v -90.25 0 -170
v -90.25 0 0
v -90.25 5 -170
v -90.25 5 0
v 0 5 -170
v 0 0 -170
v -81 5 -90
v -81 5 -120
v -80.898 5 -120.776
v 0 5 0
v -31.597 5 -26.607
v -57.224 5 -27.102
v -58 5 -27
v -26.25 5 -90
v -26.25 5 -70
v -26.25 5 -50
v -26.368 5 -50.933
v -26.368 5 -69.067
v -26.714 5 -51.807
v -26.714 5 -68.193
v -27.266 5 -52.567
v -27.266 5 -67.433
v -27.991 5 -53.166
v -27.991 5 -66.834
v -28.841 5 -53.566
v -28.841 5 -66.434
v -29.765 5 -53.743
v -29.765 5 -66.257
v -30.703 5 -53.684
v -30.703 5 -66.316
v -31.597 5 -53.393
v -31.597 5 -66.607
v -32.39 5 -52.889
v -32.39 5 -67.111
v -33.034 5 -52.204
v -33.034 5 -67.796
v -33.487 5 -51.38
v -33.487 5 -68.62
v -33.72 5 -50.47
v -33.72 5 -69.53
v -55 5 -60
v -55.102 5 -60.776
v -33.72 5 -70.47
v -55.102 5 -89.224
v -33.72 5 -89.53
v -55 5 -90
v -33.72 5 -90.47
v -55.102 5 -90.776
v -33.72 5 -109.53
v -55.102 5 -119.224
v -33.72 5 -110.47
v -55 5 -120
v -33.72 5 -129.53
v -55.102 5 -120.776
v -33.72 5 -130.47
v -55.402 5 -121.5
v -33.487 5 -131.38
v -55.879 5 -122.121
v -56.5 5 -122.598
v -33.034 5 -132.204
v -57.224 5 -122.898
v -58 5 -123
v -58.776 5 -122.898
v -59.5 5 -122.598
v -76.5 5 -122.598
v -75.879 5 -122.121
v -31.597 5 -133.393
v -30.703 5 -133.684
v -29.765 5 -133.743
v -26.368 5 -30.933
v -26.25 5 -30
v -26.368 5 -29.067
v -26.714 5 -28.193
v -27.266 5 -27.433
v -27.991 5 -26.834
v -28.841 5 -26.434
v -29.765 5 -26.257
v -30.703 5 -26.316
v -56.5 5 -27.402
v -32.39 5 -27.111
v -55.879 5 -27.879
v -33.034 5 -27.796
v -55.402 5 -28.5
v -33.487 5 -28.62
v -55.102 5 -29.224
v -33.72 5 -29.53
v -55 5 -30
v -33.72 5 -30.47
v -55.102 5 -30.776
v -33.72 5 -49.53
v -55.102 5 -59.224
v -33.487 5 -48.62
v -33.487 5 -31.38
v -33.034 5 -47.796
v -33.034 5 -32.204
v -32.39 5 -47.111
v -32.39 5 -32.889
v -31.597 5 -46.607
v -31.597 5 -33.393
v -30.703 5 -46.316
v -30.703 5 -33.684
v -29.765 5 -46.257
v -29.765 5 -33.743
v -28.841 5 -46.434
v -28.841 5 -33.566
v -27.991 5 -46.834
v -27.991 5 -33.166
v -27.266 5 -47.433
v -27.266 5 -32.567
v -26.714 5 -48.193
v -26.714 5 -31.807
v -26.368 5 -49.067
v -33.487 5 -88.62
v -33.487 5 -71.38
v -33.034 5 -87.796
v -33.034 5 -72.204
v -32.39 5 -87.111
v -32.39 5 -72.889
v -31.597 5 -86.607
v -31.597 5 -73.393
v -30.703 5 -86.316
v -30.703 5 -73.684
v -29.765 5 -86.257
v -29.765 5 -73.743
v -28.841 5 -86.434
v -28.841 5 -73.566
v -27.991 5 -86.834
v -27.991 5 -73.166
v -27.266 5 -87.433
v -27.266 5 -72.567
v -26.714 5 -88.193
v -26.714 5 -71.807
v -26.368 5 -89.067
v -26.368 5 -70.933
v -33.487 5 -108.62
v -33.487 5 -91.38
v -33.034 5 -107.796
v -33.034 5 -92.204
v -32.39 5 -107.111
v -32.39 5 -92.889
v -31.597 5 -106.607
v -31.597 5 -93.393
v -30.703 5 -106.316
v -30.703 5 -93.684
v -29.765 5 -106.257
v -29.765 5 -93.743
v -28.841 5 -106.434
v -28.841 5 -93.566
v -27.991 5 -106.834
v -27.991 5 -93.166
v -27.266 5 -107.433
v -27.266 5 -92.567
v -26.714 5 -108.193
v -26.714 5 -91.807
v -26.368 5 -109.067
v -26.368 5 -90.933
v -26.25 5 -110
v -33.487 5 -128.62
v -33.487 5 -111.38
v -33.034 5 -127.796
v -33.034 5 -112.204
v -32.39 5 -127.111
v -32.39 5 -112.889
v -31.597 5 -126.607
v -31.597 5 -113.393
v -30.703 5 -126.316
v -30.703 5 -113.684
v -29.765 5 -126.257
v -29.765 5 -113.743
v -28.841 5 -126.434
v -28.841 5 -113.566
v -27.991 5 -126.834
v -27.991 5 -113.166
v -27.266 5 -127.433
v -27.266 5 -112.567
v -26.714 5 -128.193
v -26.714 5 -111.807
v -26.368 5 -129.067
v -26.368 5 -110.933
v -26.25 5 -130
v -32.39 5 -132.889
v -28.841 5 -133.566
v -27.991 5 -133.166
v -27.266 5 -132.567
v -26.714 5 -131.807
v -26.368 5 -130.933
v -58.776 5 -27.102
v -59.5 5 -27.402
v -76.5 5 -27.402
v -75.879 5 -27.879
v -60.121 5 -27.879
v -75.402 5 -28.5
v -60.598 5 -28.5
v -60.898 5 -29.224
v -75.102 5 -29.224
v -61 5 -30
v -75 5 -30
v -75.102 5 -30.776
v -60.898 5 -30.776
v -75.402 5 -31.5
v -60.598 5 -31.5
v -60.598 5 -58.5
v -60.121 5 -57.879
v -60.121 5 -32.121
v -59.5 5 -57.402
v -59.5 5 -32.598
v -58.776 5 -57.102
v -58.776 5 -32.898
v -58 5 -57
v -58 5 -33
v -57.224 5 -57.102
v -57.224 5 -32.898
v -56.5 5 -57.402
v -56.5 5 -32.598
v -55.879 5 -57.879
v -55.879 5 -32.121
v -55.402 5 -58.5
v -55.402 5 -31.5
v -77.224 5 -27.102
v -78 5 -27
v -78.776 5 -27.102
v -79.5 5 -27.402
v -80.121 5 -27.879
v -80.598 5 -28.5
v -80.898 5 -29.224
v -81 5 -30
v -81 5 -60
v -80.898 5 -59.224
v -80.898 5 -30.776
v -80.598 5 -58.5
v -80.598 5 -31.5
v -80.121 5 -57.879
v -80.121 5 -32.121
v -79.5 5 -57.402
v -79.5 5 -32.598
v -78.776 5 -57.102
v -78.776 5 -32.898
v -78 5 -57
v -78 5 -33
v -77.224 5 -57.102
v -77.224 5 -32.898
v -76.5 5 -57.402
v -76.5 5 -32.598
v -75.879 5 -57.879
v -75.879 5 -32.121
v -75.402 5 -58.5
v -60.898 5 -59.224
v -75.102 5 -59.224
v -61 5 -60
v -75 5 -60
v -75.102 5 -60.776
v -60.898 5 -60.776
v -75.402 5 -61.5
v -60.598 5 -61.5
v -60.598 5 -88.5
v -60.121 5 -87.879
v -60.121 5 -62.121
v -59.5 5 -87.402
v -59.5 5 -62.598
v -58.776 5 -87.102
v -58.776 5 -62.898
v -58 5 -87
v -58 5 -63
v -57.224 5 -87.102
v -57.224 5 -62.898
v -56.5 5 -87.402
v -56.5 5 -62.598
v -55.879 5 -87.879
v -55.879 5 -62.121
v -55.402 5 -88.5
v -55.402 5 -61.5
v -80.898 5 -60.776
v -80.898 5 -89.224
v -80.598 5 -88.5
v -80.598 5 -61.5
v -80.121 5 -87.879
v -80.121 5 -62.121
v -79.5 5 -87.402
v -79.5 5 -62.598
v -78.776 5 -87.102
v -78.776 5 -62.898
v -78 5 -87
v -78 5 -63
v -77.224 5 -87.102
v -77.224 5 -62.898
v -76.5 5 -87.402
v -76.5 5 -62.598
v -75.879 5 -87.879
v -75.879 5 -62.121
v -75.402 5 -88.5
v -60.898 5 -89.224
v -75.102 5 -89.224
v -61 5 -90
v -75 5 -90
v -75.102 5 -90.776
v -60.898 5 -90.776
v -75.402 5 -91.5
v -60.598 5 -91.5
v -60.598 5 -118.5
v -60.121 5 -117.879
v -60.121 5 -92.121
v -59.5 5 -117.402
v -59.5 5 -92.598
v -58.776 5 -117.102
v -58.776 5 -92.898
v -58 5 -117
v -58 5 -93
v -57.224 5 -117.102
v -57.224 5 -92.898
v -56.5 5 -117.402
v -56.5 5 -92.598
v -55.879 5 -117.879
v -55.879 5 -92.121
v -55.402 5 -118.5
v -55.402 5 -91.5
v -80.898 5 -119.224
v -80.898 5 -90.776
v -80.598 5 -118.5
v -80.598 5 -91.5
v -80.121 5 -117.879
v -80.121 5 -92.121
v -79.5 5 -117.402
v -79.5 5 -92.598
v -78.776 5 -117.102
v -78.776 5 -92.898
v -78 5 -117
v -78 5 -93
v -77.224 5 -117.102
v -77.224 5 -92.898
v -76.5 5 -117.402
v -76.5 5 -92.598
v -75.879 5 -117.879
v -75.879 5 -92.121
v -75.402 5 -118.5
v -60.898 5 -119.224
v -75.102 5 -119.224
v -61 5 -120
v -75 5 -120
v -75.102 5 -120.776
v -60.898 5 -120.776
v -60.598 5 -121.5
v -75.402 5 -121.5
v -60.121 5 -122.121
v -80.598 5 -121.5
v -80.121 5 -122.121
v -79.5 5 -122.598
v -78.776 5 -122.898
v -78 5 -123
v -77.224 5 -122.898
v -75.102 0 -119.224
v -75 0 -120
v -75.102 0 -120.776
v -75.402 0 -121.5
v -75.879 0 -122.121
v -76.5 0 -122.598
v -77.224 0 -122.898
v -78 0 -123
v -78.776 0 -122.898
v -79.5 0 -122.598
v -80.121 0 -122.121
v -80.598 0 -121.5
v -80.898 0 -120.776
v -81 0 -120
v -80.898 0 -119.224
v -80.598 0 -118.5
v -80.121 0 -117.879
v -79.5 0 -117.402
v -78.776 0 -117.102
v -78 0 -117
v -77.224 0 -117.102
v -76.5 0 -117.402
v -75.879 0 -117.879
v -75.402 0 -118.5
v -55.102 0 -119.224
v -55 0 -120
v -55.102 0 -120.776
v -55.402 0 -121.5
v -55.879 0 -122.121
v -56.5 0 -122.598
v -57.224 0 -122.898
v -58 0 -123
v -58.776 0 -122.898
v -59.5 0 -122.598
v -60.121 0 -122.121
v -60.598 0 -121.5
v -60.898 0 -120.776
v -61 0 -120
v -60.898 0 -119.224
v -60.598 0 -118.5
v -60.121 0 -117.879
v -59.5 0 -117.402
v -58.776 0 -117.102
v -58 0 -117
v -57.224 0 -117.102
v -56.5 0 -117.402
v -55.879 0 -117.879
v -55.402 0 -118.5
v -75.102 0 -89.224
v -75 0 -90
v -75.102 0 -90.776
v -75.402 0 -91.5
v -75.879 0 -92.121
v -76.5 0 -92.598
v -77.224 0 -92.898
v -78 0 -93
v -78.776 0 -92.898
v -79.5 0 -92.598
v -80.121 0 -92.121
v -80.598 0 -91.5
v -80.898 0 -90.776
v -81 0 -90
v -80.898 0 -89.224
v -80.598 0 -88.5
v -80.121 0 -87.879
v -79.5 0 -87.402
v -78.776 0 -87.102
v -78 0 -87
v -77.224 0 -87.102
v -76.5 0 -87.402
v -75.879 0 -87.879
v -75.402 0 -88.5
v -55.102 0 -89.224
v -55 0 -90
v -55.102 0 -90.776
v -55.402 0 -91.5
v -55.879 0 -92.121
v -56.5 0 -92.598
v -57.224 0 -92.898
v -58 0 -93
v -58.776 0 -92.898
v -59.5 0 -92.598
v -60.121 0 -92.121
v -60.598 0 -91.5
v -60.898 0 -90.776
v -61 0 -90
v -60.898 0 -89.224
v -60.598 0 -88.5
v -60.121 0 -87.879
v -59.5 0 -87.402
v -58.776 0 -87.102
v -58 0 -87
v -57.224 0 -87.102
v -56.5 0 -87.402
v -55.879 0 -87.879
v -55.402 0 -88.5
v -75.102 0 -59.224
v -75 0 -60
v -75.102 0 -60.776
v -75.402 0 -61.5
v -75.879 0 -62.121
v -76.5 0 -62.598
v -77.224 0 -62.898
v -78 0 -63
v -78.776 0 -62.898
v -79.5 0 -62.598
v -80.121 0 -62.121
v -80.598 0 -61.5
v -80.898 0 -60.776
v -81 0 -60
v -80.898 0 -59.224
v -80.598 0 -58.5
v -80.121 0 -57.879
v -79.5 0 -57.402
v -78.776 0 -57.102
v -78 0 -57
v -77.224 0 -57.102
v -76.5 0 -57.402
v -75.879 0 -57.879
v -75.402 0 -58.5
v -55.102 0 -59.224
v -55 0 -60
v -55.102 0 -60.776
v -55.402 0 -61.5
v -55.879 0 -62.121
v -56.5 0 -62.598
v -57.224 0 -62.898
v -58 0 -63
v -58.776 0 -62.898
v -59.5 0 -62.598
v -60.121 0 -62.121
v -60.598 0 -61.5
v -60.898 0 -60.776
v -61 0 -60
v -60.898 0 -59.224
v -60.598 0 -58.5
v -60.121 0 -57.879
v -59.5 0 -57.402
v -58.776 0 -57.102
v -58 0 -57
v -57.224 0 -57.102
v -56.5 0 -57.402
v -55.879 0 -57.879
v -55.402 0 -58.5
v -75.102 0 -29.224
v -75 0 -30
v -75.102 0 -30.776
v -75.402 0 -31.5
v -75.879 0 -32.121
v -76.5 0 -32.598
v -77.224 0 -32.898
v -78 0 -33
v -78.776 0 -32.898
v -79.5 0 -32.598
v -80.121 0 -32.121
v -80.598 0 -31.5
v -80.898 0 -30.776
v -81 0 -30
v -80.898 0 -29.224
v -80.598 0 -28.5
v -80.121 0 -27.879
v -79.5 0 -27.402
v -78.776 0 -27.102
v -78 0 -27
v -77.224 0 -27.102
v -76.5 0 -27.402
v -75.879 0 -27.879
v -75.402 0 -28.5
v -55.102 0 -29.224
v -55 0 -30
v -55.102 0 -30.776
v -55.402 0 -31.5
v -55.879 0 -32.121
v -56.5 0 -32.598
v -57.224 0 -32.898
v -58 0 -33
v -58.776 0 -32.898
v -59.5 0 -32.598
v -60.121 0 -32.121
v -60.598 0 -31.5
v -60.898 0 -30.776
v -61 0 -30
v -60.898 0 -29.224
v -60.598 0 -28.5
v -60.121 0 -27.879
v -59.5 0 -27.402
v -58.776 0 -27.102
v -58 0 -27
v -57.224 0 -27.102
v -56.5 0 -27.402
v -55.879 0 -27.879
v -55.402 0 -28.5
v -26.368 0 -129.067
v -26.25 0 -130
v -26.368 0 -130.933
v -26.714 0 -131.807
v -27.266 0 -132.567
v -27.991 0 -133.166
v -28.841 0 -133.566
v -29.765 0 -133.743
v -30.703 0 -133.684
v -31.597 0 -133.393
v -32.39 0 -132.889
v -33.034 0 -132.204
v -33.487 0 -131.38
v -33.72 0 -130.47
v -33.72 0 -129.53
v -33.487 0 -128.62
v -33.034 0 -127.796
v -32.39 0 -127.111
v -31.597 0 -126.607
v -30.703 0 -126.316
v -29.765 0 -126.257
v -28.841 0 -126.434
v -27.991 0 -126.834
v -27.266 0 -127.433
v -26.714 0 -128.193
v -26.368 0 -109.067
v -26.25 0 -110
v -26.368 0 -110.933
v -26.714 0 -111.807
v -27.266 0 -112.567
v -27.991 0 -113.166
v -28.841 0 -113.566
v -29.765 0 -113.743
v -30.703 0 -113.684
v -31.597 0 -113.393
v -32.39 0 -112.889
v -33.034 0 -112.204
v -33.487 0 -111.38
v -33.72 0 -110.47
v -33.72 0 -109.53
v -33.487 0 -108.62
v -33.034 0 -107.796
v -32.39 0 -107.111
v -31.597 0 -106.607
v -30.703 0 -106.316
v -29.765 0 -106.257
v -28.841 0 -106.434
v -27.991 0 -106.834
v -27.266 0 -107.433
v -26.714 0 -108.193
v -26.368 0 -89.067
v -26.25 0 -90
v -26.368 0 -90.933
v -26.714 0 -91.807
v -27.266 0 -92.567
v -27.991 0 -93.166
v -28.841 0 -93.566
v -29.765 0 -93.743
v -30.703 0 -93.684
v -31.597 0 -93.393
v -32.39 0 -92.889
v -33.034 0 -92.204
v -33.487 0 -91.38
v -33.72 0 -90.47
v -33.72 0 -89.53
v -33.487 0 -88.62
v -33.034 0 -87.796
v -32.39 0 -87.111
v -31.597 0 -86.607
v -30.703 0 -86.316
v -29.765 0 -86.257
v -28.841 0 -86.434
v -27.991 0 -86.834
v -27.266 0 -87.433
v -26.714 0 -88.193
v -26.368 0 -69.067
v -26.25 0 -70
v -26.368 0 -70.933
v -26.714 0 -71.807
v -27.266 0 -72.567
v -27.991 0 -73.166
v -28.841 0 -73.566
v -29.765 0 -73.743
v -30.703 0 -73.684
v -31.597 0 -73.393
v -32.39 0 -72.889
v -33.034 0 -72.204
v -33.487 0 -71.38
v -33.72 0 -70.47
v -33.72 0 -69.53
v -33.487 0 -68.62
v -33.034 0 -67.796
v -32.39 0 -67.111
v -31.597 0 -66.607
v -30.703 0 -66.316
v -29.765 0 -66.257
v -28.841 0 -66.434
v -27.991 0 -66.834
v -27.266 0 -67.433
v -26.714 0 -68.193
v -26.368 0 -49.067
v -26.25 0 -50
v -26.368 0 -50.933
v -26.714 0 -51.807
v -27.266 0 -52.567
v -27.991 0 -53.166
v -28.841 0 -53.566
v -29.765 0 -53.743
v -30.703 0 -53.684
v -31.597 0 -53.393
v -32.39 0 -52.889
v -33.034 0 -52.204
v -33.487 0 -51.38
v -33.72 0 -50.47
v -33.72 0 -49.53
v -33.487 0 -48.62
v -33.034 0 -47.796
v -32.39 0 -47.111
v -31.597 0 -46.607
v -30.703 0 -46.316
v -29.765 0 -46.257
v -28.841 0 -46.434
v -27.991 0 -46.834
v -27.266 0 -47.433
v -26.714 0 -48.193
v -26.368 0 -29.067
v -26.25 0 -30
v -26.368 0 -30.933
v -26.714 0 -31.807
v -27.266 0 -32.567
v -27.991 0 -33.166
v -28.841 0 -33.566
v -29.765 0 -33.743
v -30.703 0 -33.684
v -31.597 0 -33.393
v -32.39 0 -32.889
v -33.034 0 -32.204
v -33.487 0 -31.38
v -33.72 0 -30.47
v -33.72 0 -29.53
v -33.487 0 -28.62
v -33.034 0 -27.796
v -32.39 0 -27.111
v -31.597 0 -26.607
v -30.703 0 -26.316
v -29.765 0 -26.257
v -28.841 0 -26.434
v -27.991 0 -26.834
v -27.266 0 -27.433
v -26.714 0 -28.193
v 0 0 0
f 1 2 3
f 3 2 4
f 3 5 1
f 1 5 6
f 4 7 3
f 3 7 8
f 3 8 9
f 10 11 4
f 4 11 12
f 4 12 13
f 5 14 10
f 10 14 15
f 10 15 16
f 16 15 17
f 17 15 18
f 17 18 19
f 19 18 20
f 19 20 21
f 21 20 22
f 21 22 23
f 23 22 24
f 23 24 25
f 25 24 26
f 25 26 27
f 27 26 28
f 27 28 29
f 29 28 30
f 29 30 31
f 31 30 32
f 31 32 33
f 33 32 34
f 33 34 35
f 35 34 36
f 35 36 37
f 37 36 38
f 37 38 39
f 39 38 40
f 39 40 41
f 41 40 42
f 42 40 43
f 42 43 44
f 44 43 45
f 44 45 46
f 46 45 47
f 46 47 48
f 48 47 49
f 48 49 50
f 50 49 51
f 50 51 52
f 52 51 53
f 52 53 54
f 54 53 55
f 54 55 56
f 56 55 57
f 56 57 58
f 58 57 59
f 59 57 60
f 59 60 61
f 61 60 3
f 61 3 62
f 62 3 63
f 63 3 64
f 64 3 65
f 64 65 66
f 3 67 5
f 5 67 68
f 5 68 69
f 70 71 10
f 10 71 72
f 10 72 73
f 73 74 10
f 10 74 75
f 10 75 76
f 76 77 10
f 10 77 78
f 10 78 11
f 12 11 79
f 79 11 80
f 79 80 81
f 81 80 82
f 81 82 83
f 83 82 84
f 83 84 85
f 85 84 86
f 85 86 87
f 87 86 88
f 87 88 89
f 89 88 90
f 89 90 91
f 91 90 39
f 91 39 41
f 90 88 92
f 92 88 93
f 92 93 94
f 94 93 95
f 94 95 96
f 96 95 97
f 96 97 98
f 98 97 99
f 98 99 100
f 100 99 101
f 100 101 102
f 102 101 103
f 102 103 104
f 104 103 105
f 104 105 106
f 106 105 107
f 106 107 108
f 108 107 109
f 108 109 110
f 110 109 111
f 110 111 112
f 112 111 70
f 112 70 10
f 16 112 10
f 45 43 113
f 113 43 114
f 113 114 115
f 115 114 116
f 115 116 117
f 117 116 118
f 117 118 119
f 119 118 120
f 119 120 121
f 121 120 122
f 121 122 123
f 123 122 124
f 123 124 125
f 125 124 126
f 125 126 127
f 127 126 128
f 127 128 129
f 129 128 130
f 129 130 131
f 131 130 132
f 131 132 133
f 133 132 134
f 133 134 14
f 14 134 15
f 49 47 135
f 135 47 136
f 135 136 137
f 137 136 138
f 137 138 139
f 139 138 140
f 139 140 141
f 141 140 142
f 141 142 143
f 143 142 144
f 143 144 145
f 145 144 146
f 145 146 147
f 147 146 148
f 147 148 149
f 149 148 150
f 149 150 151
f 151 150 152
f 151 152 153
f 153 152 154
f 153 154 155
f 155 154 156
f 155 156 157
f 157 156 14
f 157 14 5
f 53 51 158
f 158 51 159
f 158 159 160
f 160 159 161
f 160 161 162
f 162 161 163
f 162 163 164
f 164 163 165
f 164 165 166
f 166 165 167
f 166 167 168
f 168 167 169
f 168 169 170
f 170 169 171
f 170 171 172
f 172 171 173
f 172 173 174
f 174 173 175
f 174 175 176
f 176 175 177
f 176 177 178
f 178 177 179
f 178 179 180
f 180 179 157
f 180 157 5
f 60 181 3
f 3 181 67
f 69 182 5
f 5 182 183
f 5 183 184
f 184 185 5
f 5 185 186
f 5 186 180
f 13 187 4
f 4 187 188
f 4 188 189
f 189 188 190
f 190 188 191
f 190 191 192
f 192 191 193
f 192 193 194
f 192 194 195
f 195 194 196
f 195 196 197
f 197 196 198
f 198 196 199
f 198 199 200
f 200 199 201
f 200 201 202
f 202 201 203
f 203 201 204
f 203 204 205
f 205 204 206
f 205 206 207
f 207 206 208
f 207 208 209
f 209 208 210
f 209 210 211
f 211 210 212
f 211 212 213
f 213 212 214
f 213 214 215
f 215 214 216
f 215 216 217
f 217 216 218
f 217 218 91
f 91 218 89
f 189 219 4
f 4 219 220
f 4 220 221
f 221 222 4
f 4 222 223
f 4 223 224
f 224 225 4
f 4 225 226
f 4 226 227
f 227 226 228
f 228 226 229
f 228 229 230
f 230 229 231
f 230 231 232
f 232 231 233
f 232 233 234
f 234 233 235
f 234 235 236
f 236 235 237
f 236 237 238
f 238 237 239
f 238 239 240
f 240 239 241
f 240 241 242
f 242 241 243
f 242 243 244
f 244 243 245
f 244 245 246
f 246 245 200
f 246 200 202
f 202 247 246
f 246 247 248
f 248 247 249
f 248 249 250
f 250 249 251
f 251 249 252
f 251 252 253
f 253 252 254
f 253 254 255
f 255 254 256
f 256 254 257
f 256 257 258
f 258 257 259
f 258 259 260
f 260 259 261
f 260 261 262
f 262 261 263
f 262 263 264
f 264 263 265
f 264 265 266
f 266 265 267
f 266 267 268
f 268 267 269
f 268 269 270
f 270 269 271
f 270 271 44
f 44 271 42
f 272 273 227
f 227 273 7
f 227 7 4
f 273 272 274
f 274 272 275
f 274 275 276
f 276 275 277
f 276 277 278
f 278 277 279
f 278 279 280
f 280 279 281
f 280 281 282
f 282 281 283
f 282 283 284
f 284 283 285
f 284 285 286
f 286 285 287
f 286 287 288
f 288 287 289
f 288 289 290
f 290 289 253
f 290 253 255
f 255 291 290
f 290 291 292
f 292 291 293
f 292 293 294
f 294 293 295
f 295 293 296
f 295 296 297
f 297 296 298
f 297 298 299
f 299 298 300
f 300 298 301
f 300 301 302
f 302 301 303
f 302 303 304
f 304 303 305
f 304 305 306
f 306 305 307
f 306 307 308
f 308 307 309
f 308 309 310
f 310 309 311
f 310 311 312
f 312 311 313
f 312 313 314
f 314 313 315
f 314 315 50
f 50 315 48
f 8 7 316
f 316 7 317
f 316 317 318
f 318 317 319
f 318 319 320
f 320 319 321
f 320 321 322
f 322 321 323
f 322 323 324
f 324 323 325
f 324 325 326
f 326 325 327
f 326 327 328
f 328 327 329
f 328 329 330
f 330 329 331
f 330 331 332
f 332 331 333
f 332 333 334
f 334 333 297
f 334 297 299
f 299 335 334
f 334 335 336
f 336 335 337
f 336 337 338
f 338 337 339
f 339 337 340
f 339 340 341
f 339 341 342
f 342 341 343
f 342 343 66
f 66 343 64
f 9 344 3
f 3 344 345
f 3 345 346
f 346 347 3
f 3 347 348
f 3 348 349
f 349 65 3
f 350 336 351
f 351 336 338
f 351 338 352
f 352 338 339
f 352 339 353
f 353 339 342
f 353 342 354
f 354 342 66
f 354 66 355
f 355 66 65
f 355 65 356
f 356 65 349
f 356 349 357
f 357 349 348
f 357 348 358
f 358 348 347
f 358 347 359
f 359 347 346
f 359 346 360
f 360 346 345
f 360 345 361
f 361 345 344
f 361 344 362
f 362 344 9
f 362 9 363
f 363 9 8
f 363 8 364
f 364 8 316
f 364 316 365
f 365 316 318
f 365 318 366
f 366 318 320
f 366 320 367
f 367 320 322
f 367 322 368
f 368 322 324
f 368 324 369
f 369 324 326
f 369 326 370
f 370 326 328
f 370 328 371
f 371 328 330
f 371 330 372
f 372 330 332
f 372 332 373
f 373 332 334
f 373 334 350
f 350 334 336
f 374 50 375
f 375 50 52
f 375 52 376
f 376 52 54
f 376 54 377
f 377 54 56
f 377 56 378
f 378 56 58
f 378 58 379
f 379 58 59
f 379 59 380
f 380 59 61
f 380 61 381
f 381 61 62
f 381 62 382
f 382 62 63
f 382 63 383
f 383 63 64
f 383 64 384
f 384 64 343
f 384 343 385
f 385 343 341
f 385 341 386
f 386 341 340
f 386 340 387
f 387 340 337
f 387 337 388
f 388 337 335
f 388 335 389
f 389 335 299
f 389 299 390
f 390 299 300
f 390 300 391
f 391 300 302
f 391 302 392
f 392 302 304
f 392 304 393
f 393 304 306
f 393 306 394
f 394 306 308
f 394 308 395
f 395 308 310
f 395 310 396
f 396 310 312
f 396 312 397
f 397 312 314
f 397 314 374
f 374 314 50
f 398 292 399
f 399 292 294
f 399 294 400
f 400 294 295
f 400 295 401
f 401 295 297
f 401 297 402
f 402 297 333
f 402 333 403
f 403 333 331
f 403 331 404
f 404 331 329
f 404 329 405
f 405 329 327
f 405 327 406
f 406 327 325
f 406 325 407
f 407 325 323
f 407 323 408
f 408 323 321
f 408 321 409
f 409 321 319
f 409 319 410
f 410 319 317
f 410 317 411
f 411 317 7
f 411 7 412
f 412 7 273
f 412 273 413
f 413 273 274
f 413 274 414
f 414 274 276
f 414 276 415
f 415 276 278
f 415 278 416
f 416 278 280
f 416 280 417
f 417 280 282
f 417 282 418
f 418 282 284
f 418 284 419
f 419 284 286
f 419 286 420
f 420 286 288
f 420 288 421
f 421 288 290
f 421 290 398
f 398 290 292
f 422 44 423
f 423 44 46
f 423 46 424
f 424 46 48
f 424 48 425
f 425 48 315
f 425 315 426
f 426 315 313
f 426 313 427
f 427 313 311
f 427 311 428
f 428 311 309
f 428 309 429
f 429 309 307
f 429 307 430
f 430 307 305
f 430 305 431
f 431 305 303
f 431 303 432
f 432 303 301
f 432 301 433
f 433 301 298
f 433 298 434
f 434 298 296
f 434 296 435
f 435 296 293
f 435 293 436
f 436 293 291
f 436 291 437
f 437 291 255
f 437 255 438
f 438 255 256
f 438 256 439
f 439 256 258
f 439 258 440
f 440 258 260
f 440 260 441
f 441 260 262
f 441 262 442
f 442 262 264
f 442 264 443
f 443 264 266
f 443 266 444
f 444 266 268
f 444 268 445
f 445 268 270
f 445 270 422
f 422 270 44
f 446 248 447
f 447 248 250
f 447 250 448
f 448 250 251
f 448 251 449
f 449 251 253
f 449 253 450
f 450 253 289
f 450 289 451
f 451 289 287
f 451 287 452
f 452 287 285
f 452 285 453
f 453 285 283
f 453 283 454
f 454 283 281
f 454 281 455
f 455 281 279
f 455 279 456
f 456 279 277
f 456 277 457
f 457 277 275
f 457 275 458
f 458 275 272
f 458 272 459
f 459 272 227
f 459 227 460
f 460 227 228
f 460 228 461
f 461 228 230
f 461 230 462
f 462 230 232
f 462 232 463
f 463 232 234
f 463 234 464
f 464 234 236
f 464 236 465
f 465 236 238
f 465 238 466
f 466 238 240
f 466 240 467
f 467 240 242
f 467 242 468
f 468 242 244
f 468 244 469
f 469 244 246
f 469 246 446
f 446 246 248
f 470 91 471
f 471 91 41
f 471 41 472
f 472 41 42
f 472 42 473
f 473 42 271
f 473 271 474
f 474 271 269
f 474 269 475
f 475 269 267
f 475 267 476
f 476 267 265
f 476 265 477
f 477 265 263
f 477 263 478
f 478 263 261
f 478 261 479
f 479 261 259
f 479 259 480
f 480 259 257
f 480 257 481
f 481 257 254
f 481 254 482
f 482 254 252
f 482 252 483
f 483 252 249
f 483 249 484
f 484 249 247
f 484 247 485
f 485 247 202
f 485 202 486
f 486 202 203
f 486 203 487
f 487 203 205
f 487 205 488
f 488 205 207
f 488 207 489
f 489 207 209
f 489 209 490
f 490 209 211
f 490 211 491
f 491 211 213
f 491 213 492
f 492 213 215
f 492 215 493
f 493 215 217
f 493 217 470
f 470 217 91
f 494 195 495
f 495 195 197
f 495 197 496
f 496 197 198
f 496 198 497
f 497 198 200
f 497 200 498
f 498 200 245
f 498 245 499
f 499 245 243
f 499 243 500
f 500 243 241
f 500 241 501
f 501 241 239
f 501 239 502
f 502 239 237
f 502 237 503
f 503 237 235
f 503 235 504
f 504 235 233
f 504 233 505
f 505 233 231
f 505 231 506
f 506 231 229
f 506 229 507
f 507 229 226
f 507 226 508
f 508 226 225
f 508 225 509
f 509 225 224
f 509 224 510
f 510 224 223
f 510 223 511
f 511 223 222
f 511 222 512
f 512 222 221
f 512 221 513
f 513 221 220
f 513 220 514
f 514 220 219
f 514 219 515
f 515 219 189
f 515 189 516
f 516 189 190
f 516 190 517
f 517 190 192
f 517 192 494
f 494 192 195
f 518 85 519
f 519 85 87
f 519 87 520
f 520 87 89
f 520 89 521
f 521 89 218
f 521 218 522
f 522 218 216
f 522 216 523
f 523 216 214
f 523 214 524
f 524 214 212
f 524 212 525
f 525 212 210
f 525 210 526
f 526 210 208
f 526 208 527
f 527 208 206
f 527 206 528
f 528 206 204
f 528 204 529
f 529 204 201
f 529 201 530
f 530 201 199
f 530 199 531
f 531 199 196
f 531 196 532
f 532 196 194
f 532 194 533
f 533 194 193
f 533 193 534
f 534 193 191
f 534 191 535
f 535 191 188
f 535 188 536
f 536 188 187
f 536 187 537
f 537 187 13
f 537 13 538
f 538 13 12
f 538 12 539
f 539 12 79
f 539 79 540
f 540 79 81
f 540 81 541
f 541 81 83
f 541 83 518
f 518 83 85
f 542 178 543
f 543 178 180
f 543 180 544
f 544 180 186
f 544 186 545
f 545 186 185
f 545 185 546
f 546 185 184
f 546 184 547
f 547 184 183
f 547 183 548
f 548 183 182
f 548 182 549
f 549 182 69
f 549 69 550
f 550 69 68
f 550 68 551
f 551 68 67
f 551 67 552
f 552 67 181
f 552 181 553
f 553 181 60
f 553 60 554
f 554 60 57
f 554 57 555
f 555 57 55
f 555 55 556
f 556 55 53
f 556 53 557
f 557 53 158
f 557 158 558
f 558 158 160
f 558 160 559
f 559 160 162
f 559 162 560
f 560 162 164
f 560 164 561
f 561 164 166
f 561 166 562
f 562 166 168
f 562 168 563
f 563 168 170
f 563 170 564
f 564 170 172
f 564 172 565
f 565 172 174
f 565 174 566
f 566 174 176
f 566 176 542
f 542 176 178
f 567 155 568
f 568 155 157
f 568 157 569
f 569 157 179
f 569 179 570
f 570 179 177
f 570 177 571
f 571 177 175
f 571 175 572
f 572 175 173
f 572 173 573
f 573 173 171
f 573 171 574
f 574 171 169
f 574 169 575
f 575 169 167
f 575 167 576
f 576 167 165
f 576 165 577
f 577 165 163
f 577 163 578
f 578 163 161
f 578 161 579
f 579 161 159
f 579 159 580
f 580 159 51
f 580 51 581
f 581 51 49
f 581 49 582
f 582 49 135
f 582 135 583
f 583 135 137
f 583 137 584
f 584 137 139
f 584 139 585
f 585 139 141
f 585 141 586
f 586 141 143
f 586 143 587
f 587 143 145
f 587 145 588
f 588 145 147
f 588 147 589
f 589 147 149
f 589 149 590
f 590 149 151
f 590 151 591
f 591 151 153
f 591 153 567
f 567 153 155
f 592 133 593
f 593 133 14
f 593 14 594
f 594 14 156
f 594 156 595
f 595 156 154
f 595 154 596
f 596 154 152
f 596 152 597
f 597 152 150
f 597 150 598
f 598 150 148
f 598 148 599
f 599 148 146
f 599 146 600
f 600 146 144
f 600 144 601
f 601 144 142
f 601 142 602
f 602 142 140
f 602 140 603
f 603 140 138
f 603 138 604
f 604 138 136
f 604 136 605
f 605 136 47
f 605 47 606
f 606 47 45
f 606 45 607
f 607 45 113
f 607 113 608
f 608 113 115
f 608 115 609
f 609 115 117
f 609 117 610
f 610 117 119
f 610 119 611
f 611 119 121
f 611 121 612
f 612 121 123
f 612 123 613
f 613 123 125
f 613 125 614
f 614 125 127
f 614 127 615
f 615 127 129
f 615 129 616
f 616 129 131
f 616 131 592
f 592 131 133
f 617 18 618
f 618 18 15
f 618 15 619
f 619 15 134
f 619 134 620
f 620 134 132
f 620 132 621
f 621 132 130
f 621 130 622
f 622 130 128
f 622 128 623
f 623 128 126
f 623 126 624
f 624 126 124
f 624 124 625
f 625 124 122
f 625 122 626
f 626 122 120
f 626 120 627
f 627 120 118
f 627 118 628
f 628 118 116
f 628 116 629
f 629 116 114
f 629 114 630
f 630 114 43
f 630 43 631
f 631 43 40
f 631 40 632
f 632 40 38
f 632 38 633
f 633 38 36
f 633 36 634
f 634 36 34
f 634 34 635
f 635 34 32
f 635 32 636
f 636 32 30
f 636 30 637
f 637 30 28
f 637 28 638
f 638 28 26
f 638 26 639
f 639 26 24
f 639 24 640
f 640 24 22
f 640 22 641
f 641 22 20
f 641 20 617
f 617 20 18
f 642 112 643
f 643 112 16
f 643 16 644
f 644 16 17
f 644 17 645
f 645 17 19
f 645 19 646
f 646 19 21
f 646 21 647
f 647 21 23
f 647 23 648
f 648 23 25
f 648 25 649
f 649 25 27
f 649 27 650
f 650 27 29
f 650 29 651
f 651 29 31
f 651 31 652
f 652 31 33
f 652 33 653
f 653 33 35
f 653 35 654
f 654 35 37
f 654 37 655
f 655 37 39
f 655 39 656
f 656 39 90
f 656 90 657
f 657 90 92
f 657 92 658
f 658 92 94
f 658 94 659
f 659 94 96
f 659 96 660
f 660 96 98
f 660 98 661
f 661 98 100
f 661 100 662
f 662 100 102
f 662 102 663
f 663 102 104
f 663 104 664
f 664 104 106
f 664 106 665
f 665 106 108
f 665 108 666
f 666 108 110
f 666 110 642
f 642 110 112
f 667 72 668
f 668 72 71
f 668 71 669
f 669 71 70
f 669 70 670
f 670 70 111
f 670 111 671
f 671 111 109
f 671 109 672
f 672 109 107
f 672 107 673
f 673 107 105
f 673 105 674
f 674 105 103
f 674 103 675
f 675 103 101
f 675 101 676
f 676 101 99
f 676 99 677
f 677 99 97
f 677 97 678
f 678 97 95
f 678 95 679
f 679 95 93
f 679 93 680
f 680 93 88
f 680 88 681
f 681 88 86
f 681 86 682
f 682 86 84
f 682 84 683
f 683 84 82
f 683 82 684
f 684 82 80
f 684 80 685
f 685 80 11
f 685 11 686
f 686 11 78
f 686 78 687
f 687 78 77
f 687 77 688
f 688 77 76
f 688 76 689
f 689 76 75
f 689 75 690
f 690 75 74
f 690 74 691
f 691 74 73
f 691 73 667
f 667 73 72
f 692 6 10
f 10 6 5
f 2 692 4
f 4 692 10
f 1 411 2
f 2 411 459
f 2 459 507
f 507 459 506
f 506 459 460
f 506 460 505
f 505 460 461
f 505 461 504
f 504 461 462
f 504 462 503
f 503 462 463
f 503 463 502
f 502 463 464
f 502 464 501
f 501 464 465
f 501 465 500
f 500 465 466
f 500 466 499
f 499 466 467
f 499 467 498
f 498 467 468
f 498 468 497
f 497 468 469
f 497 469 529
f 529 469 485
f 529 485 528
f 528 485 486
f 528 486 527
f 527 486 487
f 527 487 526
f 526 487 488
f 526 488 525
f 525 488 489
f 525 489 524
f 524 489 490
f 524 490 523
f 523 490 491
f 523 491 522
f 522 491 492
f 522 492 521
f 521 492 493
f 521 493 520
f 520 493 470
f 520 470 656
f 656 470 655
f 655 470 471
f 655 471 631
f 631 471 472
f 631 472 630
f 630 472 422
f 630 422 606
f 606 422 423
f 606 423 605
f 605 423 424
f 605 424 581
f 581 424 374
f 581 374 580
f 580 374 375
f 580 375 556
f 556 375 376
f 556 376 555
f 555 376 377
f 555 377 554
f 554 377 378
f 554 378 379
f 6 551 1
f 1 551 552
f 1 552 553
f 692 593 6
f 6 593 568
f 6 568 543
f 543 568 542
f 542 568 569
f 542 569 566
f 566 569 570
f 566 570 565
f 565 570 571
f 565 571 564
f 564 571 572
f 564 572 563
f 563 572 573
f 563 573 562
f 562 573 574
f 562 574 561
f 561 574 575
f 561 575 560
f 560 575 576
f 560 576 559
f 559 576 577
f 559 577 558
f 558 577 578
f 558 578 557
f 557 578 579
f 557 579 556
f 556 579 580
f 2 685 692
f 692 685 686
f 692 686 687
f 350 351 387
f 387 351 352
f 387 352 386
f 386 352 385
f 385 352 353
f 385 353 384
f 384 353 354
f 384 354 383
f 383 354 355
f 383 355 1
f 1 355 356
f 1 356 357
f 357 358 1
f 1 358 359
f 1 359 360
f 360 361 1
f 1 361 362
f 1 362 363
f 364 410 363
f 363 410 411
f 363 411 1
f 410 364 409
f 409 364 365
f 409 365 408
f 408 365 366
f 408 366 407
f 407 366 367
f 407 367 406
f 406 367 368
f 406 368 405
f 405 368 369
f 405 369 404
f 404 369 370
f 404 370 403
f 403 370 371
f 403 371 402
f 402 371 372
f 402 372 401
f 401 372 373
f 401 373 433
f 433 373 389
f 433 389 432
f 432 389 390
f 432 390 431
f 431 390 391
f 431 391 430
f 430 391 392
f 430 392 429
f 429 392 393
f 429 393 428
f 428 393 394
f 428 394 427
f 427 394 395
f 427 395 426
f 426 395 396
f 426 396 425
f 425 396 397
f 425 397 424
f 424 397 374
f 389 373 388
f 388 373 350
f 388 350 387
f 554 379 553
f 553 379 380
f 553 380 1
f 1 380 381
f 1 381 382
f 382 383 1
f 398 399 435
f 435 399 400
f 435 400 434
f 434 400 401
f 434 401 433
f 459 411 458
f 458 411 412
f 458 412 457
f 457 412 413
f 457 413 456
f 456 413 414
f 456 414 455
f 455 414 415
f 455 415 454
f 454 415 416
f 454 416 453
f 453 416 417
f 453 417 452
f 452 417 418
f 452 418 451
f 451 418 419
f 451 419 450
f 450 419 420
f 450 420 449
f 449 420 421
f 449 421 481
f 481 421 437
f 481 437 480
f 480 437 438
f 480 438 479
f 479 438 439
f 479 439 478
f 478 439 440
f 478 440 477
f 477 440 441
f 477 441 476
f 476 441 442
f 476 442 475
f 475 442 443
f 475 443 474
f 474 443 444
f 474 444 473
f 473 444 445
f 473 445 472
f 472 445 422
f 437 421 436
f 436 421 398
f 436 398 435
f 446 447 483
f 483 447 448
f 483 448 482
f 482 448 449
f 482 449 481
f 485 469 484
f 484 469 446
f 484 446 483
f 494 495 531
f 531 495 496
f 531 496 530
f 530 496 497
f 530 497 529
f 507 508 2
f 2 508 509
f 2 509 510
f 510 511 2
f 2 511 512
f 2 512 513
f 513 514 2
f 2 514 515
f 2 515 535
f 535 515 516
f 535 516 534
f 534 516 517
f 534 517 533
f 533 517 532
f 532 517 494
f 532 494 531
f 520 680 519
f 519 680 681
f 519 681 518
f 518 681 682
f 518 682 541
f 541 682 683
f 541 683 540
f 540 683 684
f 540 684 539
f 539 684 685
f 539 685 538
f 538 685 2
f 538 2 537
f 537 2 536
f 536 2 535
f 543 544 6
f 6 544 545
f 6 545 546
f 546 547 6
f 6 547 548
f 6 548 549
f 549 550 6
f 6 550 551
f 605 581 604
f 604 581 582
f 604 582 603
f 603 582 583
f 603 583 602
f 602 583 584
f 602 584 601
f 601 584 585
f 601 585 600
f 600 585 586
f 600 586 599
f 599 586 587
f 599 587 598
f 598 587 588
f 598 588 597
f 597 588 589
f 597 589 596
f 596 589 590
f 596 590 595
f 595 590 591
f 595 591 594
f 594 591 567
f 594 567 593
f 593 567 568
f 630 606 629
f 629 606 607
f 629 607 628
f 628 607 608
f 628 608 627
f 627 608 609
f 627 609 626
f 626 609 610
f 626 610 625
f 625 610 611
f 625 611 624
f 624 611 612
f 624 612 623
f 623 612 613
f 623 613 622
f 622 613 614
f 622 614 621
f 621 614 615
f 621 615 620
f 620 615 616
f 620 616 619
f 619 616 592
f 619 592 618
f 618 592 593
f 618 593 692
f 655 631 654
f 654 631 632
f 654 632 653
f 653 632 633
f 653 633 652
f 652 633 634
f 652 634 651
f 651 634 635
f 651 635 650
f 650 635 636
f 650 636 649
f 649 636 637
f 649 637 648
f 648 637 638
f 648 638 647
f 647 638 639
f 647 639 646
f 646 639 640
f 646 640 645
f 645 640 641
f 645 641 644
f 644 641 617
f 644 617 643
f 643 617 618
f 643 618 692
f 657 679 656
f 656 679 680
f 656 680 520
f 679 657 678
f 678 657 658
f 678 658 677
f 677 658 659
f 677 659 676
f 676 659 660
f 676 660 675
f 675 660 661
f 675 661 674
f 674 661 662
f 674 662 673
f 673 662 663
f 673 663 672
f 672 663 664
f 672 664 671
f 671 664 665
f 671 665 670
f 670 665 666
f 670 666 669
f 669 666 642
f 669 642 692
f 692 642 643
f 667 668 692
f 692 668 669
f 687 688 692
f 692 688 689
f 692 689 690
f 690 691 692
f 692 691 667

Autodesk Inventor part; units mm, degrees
ref_plane "YZ Plane" through (0, 0, 0) normal (1, 0, 0) x (0, 1, 0)
ref_plane "XZ Plane" through (0, 0, 0) normal (0, 1, 0) x (-1, 0, 0)
ref_plane "XY Plane" through (0, 0, 0) normal (0, 0, 1) x (1, 0, 0)
sketch "Sketch1" plane through (0, 0, 0) normal (0, 1, 0) x (-1, 0, 0)
  line L0 (0, 0) -> (150, 0)
  line L1 (150, 0) -> (150, -170)
  line L2 (150, -170) -> (0, -170)
  line L3 (0, -170) -> (0, 0)
  dimension "d0" = 150
  dimension "d1" = 170
extrude "Extrusion1" add sketch "Sketch1" along normal blind 5
sketch "Sketch2" plane through (0, 5, 0) normal (0, 1, 0) x (1, 0, 0)
  circle A0 centre (-30, 30) radius 3.75
  point P0 (0, 0)
  dimension "d4" = 7.5
extrude "Extrusion2" cut sketch "Sketch2" against normal blind 5
pattern_linear "Rectangular Pattern1" count 6 spacing 20 along (0, 0, -1) of "Extrusion2"
sketch "Sketch3" plane through (0, 5, 0) normal (0, 1, 0) x (1, 0, 0)
  circle A0 centre (-58, 30) radius 3
  point P0 (0, 0)
  dimension "d10" = 6
extrude "Extrusion3" cut sketch "Sketch3" against normal blind 5
pattern_linear "Rectangular Pattern2" count 2 spacing 20 along (-1, 0, 0) count 4 spacing 30 along (0, 0, -1) of "Extrusion3"
sketch "Sketch4" plane through (-150, 0, -170) normal (-1, 0, 0) x (0, 0, 1)
  line L0 (170, 5) -> (0, 5) projected
  line L1 (170, 0) -> (0, 0)
  line L2 (0, 0) -> (0, 5)
  line L3 (0, 5) -> (170, 5)
  line L4 (170, 5) -> (170, 0)
extrude "Extrusion4" cut sketch "Sketch4" against normal blind 59.75
properties part number "Switchboard"
